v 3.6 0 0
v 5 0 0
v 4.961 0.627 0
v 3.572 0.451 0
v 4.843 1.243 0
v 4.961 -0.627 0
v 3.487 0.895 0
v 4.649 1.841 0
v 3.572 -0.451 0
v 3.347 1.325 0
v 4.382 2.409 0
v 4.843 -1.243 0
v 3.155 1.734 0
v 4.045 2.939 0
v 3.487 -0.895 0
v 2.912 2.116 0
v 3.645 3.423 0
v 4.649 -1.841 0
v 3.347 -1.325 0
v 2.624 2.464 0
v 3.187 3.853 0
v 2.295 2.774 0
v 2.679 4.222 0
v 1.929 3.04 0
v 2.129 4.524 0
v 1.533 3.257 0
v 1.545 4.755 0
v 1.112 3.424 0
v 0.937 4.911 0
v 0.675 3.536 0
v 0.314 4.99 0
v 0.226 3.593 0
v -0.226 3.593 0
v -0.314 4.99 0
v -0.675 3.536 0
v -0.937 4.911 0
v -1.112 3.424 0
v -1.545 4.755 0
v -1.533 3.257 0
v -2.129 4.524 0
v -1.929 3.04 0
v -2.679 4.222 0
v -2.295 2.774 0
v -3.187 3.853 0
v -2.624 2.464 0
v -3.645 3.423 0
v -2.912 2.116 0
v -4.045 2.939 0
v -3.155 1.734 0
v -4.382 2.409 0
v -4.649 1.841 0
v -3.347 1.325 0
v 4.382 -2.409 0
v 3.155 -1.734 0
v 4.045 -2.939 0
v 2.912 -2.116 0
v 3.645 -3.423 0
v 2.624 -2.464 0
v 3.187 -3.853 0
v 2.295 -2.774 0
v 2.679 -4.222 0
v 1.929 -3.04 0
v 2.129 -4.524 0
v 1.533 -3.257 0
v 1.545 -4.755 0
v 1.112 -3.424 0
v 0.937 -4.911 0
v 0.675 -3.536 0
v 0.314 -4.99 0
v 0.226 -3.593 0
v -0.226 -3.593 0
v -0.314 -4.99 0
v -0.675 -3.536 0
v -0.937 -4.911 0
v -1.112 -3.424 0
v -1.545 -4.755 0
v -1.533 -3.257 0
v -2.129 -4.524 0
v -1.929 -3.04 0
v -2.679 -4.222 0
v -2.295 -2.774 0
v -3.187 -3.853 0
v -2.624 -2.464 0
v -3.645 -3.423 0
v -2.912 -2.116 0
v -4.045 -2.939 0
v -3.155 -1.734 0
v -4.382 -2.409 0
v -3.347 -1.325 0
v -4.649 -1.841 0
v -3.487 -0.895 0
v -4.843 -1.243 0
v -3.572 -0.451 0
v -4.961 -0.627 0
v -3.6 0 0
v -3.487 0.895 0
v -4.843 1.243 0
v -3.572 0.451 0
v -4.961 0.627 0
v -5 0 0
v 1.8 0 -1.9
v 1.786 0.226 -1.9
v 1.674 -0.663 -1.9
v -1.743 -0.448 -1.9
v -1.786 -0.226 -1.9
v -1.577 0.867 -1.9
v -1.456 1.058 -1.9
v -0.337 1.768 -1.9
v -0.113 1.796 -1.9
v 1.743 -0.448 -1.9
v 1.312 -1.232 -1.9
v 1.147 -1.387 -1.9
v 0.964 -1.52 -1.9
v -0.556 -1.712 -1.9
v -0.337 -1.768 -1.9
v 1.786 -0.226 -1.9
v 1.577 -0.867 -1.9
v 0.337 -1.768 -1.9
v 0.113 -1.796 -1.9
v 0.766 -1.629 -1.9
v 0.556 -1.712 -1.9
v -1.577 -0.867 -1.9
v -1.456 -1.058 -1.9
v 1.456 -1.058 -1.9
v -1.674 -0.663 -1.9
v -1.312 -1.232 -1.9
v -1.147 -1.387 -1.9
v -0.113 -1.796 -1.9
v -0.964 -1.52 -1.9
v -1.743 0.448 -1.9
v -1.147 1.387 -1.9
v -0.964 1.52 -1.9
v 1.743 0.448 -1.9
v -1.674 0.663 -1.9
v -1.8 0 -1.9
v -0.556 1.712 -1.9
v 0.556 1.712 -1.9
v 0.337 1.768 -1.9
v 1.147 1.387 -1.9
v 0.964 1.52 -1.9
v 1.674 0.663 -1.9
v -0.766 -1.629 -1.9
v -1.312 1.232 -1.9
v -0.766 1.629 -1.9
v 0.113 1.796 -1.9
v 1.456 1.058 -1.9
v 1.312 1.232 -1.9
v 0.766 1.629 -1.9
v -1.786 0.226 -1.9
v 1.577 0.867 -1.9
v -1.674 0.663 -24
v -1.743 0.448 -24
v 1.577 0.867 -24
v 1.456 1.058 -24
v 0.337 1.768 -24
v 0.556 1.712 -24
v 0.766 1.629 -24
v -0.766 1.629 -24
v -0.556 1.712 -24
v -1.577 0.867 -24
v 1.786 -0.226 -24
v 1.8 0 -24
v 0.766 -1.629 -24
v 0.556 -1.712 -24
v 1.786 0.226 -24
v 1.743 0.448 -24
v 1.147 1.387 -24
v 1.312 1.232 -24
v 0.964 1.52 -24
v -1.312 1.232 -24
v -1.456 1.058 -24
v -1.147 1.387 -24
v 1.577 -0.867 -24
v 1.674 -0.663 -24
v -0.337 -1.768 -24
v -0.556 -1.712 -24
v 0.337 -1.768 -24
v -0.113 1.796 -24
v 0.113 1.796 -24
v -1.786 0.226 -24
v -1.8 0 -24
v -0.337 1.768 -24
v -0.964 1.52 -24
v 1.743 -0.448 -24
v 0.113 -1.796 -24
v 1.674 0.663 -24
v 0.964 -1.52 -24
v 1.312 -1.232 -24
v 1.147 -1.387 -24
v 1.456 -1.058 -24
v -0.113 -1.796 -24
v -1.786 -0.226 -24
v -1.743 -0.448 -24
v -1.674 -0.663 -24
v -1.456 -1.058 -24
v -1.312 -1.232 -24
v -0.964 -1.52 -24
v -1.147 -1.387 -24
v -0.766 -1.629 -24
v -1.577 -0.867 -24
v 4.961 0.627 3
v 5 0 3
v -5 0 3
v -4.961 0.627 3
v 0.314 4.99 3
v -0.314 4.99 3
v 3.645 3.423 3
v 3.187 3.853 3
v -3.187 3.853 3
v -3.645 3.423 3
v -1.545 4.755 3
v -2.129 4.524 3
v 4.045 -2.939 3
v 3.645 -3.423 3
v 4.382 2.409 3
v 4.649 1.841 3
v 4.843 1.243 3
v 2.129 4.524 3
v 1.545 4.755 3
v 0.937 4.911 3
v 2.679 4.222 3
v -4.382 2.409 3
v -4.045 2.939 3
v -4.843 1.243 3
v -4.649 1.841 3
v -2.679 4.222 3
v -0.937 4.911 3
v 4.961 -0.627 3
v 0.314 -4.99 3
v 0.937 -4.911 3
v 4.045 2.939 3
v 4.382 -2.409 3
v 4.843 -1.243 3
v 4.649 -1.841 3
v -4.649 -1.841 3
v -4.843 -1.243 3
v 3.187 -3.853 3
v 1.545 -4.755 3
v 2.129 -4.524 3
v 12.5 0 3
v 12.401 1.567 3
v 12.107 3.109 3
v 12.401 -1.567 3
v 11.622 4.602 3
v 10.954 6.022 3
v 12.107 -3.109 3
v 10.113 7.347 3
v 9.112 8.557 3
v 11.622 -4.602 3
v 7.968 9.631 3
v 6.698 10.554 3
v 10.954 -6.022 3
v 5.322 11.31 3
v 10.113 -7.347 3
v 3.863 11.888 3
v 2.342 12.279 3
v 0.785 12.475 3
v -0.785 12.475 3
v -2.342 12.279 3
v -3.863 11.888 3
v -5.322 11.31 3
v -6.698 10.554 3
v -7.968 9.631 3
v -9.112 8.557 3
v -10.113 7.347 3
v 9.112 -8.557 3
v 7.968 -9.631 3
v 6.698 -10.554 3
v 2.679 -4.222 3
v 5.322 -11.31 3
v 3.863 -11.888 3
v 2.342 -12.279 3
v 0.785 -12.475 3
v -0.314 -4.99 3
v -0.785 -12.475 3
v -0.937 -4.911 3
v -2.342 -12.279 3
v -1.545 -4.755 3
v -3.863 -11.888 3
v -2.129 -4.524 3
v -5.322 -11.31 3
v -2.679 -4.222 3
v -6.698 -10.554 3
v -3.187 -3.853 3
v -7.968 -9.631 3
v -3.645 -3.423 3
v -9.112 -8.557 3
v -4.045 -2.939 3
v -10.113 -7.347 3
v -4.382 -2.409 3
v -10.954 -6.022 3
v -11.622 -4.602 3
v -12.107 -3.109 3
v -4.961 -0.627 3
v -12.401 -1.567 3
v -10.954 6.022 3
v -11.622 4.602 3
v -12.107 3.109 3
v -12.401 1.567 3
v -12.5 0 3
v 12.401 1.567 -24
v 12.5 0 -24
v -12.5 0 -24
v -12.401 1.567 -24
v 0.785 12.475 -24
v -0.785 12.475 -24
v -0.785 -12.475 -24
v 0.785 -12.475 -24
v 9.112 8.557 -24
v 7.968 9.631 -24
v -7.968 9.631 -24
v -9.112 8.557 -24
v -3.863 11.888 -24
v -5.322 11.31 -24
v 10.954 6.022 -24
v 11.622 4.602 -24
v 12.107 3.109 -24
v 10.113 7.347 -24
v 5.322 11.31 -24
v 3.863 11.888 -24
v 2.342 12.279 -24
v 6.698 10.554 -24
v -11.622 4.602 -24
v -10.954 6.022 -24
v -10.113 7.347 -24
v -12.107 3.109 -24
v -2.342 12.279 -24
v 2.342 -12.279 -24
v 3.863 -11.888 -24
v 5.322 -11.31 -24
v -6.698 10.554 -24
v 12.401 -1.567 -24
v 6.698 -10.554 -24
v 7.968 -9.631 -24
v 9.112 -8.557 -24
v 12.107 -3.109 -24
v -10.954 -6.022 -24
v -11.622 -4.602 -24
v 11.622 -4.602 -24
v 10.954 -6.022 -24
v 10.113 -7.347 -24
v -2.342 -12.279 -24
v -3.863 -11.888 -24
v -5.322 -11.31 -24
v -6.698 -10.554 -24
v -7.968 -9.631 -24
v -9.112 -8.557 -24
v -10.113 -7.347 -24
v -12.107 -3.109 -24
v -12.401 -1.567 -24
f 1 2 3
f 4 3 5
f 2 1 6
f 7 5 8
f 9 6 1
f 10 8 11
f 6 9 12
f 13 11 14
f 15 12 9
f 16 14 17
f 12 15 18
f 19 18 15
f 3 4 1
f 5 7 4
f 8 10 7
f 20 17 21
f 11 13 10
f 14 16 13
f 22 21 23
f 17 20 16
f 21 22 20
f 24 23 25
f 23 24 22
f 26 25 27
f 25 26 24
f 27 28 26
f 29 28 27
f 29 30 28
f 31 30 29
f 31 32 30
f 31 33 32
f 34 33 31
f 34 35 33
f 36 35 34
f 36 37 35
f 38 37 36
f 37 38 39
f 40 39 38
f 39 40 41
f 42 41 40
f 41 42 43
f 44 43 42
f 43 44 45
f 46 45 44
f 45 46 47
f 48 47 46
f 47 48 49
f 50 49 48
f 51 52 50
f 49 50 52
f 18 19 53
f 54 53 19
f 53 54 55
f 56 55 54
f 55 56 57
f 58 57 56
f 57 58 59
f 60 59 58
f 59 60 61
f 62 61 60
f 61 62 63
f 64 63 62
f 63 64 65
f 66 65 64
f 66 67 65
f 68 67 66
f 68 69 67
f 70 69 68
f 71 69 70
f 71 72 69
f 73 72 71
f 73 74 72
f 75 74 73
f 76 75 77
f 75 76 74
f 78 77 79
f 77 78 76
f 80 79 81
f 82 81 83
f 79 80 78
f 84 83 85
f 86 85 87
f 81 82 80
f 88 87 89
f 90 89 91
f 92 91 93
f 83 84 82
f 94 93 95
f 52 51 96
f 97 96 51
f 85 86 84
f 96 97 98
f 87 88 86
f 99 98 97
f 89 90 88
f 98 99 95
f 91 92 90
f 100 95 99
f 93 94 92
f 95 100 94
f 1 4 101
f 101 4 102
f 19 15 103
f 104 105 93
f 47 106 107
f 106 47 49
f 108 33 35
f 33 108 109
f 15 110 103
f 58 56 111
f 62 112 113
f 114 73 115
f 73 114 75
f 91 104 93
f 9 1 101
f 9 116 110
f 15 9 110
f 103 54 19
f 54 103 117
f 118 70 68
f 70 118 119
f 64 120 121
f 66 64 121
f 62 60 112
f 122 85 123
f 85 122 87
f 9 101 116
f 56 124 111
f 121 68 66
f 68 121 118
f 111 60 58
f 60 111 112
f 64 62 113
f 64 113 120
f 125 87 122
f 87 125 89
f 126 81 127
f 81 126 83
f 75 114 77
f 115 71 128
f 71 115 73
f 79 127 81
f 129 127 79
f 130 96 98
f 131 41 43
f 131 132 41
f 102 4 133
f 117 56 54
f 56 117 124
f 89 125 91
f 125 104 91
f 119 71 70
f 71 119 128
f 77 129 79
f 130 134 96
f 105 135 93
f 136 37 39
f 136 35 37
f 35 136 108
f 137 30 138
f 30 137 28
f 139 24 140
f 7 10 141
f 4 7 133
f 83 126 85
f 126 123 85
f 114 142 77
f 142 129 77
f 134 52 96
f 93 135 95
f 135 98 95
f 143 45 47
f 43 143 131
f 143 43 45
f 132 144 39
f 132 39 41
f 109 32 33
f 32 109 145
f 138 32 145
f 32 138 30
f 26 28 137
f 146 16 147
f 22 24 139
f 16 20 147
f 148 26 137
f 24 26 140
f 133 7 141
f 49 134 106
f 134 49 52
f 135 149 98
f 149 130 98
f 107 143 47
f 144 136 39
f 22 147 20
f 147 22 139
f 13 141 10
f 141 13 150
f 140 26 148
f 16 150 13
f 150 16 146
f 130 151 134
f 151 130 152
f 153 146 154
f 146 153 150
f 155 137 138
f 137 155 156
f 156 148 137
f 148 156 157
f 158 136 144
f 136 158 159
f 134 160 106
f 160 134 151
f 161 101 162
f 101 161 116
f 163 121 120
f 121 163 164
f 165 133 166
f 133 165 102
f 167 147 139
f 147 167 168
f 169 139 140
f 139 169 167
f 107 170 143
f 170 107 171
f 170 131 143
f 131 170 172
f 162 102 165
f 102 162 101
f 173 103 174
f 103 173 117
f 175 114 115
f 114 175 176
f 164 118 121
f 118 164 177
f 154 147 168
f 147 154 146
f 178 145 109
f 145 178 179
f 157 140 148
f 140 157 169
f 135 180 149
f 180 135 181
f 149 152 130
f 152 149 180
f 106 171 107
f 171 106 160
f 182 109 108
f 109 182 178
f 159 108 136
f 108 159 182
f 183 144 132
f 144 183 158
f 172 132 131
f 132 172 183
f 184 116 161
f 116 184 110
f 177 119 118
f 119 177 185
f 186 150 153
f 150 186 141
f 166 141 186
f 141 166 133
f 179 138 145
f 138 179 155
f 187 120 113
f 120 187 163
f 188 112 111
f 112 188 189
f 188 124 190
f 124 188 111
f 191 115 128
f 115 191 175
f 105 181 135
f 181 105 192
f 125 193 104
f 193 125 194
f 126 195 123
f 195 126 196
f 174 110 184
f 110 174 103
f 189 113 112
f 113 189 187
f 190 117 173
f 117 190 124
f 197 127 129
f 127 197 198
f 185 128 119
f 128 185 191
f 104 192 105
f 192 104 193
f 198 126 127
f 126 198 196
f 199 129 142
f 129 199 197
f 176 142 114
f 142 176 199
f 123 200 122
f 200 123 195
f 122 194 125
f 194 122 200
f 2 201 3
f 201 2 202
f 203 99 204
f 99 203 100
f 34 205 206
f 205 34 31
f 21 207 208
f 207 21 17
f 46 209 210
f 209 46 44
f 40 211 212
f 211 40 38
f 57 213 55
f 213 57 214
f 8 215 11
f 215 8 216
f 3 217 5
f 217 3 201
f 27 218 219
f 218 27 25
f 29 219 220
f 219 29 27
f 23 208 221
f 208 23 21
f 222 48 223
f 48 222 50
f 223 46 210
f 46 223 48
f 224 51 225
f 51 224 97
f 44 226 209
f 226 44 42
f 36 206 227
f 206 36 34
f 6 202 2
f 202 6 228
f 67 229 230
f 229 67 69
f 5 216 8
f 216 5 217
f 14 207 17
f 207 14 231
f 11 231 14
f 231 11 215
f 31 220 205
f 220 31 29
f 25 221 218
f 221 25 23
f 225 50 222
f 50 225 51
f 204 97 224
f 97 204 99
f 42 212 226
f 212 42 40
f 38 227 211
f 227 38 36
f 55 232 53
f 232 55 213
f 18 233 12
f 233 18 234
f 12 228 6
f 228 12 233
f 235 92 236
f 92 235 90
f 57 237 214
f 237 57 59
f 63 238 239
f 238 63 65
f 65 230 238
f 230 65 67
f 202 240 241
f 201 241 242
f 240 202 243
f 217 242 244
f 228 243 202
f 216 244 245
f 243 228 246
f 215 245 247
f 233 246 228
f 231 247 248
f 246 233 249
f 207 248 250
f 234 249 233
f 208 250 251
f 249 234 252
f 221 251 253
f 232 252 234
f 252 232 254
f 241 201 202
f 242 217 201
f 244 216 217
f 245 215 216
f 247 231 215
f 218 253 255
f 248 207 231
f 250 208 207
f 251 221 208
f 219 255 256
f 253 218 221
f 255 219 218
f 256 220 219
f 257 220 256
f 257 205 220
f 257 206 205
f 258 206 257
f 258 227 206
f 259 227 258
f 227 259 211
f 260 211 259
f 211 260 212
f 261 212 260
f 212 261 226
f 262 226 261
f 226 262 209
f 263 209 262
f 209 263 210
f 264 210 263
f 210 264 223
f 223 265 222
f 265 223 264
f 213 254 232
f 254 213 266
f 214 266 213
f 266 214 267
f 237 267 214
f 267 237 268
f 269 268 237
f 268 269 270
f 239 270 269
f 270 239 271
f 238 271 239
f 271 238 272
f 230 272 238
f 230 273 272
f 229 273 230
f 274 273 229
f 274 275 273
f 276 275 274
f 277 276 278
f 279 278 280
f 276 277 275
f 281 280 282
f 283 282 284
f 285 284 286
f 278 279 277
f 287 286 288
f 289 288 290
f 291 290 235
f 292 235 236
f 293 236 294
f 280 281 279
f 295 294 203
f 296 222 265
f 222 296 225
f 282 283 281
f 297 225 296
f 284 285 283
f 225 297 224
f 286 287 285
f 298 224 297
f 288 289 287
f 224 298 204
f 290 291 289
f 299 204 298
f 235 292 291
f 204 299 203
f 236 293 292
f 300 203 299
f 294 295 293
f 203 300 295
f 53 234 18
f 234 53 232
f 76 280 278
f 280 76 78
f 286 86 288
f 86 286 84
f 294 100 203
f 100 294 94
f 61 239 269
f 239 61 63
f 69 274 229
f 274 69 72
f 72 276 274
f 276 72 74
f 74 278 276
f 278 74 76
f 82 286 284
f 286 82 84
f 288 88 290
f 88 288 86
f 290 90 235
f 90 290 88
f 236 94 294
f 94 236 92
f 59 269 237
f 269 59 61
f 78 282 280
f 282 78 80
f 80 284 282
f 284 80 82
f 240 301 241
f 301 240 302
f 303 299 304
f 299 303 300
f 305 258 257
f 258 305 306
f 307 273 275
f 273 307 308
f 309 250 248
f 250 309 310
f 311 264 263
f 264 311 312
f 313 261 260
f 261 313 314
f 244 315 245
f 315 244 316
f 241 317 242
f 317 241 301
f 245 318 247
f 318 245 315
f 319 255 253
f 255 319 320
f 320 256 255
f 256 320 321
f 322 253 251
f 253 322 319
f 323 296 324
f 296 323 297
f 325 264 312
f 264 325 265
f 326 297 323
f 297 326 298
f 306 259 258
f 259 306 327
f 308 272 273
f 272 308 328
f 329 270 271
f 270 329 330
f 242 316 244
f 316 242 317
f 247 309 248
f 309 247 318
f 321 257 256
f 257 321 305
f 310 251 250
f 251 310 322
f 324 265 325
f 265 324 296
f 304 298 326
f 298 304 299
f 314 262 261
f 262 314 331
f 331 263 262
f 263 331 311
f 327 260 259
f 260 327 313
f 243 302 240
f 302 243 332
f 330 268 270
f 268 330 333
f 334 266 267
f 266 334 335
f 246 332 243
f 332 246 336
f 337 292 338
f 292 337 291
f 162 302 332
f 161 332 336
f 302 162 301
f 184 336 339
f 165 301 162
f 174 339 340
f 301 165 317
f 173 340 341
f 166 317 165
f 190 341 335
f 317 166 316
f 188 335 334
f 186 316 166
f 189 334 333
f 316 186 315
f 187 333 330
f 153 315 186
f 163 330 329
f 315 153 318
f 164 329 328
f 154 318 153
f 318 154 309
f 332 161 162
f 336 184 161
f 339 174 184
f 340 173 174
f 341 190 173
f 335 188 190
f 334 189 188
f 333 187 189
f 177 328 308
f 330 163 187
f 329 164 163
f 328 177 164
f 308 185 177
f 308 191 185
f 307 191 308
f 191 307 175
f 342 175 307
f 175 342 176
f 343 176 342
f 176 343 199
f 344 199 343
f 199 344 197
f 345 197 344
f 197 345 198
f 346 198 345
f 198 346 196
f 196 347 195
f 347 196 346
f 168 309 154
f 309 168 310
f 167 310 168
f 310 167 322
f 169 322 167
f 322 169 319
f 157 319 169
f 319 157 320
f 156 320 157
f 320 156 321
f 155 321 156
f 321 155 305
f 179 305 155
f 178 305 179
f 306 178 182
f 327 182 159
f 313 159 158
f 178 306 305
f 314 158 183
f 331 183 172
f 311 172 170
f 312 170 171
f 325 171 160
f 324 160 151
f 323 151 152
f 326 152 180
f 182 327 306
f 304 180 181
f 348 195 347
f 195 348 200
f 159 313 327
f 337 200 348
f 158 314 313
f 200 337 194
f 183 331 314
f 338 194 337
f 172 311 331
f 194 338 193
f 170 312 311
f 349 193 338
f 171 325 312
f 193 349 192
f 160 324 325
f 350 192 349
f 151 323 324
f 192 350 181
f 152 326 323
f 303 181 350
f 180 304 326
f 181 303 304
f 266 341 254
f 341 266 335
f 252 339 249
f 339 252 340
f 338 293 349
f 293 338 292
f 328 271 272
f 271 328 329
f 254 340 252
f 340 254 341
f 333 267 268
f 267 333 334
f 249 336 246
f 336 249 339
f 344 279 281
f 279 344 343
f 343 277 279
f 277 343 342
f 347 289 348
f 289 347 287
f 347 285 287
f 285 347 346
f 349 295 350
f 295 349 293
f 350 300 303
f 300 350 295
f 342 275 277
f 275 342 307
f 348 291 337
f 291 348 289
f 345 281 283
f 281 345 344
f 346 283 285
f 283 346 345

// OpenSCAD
$fn = 50;

difference() {
	union() {
		translate(v = [0, 0, -24.0]) {
			cylinder(h = 27, r = 12.5);
		}
	}
	union() {
		translate(v = [0, 0, 0]) {
			rotate(a = [0, 0, 0]) {
				difference() {
					union() {
						translate(v = [0, 0, -27.0]) {
							cylinder(h = 27, r = 1.5);
						}
						translate(v = [0, 0, -1.9]) {
							cylinder(h = 1.9, r1 = 1.8, r2 = 3.6);
						}
						translate(v = [0, 0, -27.0]) {
							cylinder(h = 27, r = 1.8);
						}
						translate(v = [0, 0, -27.0]) {
							cylinder(h = 27, r = 1.5);
						}
					}
					union();
				}
			}
		}
		#cylinder(h = 3, r = 5.0);
	}
}
